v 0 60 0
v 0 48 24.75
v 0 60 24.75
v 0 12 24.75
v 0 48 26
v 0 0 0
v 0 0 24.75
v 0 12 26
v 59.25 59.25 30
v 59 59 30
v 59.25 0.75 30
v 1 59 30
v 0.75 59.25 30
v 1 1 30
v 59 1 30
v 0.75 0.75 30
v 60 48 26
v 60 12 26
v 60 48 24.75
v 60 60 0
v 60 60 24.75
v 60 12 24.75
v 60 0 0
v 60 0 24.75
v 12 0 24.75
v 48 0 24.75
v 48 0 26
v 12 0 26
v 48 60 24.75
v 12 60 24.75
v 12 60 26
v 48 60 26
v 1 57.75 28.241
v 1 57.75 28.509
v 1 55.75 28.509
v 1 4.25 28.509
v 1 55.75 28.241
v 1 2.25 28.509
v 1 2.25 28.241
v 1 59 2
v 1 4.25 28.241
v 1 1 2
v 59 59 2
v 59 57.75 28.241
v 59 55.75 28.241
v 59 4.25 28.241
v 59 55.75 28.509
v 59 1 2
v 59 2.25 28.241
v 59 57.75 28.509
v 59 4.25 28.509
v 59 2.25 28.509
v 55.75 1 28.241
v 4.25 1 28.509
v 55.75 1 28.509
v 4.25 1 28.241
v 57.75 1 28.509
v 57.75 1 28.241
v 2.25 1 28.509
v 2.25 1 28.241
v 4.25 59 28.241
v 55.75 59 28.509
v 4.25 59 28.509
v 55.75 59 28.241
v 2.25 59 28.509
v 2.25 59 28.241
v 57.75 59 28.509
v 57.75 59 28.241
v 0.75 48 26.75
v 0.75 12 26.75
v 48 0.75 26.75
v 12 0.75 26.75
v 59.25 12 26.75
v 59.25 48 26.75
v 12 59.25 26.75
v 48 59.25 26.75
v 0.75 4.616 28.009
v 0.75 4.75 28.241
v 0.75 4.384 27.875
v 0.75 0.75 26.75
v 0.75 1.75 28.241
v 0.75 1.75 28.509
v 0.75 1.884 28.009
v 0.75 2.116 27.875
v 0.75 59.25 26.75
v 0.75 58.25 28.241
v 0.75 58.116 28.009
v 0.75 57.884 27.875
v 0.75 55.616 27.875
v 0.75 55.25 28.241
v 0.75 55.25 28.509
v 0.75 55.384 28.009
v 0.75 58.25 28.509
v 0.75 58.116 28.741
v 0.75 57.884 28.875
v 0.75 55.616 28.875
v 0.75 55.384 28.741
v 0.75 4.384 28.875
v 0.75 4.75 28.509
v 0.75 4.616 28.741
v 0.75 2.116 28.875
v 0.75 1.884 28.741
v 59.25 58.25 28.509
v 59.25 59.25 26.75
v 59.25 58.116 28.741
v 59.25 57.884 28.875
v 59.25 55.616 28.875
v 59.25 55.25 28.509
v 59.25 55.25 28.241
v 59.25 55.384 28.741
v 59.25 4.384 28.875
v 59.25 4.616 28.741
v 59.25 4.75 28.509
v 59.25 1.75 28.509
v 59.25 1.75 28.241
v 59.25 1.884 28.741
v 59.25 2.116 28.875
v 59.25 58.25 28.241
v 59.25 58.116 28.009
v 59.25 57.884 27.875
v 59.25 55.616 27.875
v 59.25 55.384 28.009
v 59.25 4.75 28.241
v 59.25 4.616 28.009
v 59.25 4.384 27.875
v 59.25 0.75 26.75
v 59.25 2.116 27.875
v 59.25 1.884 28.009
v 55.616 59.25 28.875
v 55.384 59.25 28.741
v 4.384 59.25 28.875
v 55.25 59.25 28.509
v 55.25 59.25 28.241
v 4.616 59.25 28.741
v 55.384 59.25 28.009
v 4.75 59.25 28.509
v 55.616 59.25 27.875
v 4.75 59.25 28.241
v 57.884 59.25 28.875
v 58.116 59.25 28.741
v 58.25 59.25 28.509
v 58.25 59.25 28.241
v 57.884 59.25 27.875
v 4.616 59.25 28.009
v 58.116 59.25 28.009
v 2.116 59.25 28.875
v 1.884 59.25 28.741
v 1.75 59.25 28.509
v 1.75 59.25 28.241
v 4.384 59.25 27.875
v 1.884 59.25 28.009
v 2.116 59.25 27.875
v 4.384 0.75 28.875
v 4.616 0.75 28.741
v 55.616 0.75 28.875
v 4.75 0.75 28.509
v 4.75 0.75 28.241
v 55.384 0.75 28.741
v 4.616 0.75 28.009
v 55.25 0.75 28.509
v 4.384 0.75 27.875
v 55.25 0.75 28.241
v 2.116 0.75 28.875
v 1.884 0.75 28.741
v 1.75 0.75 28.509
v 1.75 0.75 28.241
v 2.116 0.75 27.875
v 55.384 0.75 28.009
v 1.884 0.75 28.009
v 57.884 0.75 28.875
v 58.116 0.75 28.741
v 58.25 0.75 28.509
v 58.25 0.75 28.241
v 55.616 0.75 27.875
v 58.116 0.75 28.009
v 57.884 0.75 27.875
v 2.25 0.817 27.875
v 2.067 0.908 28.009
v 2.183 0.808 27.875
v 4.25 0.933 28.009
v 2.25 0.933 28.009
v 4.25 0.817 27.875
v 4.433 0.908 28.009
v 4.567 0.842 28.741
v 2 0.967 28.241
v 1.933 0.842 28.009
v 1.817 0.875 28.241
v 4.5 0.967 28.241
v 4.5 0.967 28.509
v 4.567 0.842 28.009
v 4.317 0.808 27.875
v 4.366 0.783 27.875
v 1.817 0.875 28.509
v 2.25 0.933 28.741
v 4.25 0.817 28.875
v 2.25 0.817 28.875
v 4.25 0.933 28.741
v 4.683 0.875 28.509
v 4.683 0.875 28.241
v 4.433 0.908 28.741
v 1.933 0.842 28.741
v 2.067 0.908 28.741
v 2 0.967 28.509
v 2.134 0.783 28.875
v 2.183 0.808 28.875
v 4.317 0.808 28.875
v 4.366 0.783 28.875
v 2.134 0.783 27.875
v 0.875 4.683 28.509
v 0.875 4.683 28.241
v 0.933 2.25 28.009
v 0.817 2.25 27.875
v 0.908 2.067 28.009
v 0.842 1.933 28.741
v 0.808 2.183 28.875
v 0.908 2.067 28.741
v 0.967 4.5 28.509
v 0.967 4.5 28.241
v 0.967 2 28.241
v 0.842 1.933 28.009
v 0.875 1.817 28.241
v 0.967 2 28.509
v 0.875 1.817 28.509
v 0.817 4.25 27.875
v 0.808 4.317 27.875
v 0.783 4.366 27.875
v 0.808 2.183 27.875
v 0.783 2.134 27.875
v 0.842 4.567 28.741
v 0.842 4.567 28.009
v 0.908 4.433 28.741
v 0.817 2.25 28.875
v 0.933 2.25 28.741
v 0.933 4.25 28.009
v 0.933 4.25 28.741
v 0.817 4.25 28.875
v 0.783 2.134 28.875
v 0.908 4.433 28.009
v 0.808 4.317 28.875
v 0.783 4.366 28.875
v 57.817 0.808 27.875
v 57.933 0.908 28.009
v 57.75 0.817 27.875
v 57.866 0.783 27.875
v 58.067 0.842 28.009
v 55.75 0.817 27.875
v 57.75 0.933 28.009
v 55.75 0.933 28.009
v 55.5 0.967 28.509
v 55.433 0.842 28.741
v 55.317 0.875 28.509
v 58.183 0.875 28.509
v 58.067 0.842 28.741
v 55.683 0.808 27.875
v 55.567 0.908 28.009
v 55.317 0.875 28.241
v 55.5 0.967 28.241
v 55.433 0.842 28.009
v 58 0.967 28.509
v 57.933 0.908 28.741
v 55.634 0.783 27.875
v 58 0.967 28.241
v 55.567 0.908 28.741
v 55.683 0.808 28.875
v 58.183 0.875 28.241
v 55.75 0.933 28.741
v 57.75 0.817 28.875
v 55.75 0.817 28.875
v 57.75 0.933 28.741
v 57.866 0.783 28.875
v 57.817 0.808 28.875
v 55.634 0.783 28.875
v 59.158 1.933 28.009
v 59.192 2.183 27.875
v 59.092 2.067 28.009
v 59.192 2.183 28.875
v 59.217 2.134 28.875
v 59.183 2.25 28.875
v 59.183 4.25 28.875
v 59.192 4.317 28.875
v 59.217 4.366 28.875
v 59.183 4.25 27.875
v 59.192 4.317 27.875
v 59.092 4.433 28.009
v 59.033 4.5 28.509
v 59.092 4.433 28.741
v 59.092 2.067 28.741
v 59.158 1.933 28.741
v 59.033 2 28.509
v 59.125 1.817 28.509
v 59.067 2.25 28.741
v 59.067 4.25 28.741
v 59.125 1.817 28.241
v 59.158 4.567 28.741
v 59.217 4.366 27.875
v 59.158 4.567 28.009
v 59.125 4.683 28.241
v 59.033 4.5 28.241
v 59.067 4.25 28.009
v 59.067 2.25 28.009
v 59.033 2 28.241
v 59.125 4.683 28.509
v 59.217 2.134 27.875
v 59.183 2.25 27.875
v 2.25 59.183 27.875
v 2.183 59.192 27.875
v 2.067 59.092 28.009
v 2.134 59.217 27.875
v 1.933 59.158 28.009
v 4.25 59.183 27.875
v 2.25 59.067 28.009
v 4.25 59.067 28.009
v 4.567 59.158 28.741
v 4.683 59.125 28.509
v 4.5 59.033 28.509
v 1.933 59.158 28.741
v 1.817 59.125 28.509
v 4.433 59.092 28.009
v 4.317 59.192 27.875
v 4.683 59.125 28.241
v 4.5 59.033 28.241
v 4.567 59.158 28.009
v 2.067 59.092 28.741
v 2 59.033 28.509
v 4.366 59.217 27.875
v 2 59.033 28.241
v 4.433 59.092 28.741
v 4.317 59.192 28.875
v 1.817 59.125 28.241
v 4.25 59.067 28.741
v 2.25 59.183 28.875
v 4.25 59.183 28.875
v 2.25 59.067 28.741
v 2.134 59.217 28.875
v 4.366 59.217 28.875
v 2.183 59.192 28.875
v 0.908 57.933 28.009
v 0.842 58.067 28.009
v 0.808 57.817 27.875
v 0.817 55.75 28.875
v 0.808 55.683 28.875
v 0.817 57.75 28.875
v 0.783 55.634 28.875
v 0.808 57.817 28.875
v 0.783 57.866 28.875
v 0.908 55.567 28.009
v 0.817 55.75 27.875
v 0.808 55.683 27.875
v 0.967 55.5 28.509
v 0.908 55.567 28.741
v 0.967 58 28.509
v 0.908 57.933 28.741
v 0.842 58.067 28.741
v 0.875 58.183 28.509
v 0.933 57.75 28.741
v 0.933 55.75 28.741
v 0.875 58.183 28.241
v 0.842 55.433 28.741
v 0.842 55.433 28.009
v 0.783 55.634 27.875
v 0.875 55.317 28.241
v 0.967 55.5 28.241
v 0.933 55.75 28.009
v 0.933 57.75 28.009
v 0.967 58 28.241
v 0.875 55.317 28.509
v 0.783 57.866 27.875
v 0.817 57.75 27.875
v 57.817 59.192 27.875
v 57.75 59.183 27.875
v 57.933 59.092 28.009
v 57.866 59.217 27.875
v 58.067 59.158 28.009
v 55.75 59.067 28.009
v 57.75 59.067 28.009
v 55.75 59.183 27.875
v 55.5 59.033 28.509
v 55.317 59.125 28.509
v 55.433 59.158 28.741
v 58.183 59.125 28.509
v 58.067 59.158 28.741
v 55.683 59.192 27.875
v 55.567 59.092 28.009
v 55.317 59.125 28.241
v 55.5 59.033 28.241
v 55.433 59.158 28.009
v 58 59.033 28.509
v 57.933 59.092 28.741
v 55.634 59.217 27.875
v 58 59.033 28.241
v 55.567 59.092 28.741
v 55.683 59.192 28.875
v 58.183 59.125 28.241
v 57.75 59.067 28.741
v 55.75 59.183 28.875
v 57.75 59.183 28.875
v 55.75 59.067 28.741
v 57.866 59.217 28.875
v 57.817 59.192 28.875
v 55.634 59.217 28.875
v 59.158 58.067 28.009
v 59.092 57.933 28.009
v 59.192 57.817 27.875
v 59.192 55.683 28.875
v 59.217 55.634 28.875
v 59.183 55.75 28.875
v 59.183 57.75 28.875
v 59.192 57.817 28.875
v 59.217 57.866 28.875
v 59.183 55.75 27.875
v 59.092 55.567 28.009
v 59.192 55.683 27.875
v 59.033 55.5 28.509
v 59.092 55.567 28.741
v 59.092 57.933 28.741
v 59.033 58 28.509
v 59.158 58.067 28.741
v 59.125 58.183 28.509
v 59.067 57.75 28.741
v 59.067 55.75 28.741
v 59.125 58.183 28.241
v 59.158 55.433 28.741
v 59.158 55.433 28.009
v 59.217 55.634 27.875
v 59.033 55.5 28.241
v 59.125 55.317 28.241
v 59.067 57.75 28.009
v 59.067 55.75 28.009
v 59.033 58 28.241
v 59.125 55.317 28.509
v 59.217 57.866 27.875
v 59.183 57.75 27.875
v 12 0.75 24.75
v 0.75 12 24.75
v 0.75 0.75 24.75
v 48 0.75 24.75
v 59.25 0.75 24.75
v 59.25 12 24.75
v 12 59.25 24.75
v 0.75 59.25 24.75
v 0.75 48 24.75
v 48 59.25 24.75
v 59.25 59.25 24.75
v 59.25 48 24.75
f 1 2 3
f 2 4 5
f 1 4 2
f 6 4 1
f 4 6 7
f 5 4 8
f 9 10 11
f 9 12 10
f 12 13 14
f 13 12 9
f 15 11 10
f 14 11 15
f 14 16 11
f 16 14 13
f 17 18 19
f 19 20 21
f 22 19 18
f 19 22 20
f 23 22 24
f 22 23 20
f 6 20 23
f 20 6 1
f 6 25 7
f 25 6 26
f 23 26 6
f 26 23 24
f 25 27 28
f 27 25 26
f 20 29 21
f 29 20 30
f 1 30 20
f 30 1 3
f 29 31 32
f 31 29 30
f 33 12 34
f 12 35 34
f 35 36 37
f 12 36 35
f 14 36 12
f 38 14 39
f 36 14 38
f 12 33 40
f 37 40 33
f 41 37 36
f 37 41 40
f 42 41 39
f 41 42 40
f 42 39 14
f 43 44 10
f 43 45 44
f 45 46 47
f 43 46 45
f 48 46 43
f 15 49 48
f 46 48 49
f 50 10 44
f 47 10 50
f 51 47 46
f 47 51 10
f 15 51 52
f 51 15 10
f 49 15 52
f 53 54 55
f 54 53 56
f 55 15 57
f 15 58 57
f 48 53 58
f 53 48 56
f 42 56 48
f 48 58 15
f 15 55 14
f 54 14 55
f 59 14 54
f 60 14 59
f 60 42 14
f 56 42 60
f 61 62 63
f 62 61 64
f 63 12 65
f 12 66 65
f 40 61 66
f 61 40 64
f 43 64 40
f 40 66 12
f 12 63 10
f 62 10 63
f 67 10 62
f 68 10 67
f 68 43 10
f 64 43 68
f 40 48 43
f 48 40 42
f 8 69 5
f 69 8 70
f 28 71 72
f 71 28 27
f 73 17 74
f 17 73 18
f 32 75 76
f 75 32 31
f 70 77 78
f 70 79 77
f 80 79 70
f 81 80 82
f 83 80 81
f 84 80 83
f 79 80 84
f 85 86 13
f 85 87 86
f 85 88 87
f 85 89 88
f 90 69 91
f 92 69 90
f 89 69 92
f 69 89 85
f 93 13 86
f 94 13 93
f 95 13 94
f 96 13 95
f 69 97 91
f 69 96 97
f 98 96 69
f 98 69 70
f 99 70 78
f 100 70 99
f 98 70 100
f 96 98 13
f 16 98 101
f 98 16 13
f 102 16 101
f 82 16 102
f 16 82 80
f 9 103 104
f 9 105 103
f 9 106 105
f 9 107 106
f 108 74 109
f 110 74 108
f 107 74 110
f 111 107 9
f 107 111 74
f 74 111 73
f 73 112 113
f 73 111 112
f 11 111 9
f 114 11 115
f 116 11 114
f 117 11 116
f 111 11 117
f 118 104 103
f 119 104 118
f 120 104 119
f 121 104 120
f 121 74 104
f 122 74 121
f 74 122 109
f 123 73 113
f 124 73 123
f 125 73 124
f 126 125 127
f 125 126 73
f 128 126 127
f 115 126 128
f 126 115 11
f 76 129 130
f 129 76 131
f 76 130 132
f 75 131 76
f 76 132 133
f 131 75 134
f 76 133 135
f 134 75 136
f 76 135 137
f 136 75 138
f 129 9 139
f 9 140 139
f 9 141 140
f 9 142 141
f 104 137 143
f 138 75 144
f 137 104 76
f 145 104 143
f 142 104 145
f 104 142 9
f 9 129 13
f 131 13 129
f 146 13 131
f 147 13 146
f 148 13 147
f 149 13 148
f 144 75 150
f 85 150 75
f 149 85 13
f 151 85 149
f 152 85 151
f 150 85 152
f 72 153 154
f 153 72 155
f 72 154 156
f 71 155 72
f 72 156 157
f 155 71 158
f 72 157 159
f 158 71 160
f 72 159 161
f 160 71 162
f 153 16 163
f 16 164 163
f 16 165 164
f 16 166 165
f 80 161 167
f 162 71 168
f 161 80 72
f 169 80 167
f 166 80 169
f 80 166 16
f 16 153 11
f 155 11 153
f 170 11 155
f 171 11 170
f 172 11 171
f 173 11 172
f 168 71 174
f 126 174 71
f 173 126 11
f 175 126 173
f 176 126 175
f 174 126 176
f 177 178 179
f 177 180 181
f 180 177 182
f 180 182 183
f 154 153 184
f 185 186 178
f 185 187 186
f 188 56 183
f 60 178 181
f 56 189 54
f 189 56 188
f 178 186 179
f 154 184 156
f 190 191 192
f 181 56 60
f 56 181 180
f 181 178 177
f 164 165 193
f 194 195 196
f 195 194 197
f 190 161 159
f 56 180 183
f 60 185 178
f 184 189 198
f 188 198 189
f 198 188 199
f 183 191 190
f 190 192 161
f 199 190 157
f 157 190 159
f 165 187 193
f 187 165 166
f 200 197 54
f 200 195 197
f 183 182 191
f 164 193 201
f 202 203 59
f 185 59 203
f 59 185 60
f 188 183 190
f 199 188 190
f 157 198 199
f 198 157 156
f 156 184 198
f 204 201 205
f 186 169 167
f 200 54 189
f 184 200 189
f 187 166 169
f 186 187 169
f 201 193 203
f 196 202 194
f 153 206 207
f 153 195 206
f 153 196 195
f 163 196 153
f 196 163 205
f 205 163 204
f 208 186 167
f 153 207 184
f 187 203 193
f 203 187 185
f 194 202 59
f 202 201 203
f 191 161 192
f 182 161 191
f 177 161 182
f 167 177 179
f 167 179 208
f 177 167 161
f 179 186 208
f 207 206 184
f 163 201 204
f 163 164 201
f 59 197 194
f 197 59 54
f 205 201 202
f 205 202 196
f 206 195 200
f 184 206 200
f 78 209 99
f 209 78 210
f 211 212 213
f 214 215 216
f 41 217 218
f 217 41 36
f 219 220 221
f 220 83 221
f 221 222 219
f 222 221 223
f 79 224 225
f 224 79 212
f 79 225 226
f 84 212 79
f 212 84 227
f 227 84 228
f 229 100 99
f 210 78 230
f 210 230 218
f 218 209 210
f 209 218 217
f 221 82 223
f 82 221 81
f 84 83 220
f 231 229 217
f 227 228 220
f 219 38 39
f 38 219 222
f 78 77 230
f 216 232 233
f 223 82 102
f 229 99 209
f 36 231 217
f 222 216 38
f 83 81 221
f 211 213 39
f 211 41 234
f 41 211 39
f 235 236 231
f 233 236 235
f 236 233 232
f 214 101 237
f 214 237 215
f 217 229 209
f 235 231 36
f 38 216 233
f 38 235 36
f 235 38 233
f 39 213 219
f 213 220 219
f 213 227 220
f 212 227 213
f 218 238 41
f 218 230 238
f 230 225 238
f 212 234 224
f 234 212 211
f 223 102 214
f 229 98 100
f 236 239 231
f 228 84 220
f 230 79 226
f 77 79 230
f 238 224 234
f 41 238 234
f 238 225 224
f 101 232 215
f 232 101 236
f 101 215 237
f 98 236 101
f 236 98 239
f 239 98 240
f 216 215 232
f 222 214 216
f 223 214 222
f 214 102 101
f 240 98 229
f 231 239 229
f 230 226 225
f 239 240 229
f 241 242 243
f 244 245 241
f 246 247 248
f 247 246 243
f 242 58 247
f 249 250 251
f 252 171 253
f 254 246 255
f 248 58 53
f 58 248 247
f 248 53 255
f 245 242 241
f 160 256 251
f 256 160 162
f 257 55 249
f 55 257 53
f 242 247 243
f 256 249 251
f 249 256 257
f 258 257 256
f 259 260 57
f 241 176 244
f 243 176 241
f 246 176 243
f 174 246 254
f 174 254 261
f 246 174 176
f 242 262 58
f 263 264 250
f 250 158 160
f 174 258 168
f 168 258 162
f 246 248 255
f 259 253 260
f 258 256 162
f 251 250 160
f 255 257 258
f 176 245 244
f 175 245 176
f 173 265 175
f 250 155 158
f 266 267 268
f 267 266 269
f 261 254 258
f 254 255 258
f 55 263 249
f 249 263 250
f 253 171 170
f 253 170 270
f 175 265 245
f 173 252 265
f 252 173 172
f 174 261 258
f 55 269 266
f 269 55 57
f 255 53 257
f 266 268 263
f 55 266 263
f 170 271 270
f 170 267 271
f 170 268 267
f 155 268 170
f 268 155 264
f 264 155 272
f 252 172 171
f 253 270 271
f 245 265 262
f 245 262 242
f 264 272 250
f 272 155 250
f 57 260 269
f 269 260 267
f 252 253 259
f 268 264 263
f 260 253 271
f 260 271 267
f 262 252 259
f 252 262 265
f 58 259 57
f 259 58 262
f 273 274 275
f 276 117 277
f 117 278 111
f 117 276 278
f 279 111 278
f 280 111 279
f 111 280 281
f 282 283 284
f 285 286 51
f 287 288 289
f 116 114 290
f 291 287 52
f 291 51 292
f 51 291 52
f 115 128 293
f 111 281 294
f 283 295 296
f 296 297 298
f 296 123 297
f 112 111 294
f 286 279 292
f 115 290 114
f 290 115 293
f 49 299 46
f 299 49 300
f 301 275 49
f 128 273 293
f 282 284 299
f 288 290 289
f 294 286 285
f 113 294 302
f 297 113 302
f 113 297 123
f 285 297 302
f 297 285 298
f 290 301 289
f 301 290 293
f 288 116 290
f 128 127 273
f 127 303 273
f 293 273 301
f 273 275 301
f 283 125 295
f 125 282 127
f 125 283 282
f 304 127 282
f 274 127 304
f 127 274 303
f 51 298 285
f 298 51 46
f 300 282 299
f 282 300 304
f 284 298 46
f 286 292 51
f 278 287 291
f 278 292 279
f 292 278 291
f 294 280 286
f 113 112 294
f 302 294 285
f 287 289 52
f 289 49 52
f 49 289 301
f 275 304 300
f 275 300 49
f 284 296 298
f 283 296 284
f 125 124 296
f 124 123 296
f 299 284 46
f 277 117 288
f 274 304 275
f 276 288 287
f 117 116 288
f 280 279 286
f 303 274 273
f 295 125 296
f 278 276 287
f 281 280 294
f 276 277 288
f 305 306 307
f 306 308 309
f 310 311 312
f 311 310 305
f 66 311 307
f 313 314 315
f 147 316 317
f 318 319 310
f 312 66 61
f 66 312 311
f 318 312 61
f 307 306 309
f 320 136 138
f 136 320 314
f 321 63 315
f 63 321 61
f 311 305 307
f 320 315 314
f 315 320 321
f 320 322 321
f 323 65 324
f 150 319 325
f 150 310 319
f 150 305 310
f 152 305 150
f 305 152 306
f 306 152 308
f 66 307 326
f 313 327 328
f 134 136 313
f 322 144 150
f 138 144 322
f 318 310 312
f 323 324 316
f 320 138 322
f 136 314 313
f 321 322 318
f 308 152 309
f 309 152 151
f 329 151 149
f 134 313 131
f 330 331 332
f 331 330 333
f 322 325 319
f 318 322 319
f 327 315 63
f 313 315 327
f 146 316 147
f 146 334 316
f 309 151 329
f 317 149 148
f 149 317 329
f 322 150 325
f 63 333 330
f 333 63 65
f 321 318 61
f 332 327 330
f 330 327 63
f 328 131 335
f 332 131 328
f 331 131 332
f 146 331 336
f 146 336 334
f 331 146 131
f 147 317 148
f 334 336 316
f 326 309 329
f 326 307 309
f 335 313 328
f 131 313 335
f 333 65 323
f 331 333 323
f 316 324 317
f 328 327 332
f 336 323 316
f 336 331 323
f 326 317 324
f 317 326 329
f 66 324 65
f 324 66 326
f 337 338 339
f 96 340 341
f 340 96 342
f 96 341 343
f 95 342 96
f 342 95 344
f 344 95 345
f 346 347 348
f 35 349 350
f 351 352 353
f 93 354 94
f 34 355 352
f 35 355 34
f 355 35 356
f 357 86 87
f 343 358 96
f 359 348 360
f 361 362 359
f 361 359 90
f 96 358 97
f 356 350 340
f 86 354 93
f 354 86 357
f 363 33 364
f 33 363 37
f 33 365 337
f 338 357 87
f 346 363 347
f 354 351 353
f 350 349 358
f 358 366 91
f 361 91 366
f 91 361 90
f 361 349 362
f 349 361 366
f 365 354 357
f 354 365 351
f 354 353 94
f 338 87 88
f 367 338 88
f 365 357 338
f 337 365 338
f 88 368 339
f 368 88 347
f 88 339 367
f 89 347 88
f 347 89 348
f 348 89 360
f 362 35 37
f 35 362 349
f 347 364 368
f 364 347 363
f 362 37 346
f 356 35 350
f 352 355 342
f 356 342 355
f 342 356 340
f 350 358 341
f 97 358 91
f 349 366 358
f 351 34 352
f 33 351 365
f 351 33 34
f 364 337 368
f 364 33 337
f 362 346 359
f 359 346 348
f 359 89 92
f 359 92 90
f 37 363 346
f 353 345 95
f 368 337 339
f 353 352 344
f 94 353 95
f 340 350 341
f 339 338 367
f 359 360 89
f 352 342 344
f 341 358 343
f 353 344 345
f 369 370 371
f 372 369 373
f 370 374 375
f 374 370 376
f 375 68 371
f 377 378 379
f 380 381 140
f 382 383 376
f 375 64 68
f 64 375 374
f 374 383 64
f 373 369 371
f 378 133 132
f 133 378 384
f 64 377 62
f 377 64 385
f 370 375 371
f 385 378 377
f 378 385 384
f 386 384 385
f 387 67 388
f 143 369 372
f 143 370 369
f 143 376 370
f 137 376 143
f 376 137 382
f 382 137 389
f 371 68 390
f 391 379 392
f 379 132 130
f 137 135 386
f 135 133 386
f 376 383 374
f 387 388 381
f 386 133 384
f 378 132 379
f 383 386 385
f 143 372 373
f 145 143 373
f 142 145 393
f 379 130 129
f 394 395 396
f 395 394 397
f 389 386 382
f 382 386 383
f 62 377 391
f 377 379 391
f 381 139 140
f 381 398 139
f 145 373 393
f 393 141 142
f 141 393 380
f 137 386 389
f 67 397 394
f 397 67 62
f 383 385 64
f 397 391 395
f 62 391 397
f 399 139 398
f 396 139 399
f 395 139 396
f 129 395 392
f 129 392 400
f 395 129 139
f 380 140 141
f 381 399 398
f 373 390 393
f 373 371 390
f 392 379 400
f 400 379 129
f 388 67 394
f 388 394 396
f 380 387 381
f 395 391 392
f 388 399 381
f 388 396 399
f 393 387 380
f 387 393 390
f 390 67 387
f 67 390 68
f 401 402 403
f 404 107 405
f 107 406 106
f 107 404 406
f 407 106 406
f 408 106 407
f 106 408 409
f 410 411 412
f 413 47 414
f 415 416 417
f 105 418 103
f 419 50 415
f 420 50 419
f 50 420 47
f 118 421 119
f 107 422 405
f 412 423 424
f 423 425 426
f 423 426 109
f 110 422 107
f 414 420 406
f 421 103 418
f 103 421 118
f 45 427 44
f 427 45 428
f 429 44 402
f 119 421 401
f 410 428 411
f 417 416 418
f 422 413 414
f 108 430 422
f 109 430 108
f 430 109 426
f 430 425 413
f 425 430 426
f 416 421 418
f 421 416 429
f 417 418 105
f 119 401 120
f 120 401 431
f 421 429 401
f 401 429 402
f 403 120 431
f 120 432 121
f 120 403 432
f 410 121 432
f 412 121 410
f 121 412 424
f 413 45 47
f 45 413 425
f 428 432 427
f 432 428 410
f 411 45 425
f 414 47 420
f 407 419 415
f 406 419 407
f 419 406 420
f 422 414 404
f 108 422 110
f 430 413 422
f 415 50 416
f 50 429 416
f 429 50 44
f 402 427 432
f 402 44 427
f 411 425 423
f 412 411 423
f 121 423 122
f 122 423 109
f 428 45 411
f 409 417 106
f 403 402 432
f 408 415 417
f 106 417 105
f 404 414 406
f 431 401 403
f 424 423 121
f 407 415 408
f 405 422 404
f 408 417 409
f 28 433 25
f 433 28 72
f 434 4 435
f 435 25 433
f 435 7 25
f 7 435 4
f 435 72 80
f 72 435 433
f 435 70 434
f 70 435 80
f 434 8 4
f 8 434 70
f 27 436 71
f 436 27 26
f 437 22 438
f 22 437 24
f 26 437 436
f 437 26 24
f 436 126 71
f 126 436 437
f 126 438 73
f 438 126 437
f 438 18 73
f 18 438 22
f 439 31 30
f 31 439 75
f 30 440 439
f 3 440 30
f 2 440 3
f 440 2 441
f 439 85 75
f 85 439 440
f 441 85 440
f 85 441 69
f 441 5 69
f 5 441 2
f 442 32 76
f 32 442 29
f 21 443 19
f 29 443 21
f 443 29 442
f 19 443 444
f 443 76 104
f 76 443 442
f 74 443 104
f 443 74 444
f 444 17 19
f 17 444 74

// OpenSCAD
include <boardgame_insert_toolkit_lib.2.scad>;

// determines whether lids are output.
g_b_print_lid = false;

// determines whether boxes are output.
g_b_print_box = true; 

// Focus on one box
// g_isolated_print_box = ""; 

// Used to visualize how all of the boxes fit together. 
g_b_visualization = false;          
        
// this is the outer wall thickness. 
//Default = 1.5mm
g_wall_thickness = 1.5;

// The tolerance value is extra space put between planes of the lid and box that fit together.
// Increase the tolerance to loosen the fit and decrease it to tighten it.
//
// Note that the tolerance is applied exclusively to the lid.
// So if the lid is too tight or too loose, change this value ( up for looser fit, down for tighter fit ) and 
// you only need to reprint the lid.
// 
// The exception is the stackable box, where the bottom of the box is the lid of the box below,
// in which case the tolerance also affects that box bottom.
//
g_tolerance = 0.15;

// This adjusts the position of the lid detents downward. 
// The larger the value, the bigger the gap between the lid and the box.
g_tolerance_detents_pos = 0.1;

data =
[
    [   "jf_biztokens_v2",
        [
            [ BOX_SIZE_XYZ,                                     [60, 60, 30] ],
            [ BOX_LID,
                [
                    [ LID_SOLID_B, f],
                    [LID_FIT_UNDER_B, f],
                ]
            ],
            [ BOX_COMPONENT,
                [
                    //[CMP_NUM_COMPARTMENTS_XY,   [2,2]],
                    [CMP_COMPARTMENT_SIZE_XYZ,  [ 58, 58, 28] ]
                    //[CMP_PADDING_HEIGHT_ADJUST_XY,          [-10, -10] ],
                ]
            ],                            
        ]
    ],
];

MakeAll();
